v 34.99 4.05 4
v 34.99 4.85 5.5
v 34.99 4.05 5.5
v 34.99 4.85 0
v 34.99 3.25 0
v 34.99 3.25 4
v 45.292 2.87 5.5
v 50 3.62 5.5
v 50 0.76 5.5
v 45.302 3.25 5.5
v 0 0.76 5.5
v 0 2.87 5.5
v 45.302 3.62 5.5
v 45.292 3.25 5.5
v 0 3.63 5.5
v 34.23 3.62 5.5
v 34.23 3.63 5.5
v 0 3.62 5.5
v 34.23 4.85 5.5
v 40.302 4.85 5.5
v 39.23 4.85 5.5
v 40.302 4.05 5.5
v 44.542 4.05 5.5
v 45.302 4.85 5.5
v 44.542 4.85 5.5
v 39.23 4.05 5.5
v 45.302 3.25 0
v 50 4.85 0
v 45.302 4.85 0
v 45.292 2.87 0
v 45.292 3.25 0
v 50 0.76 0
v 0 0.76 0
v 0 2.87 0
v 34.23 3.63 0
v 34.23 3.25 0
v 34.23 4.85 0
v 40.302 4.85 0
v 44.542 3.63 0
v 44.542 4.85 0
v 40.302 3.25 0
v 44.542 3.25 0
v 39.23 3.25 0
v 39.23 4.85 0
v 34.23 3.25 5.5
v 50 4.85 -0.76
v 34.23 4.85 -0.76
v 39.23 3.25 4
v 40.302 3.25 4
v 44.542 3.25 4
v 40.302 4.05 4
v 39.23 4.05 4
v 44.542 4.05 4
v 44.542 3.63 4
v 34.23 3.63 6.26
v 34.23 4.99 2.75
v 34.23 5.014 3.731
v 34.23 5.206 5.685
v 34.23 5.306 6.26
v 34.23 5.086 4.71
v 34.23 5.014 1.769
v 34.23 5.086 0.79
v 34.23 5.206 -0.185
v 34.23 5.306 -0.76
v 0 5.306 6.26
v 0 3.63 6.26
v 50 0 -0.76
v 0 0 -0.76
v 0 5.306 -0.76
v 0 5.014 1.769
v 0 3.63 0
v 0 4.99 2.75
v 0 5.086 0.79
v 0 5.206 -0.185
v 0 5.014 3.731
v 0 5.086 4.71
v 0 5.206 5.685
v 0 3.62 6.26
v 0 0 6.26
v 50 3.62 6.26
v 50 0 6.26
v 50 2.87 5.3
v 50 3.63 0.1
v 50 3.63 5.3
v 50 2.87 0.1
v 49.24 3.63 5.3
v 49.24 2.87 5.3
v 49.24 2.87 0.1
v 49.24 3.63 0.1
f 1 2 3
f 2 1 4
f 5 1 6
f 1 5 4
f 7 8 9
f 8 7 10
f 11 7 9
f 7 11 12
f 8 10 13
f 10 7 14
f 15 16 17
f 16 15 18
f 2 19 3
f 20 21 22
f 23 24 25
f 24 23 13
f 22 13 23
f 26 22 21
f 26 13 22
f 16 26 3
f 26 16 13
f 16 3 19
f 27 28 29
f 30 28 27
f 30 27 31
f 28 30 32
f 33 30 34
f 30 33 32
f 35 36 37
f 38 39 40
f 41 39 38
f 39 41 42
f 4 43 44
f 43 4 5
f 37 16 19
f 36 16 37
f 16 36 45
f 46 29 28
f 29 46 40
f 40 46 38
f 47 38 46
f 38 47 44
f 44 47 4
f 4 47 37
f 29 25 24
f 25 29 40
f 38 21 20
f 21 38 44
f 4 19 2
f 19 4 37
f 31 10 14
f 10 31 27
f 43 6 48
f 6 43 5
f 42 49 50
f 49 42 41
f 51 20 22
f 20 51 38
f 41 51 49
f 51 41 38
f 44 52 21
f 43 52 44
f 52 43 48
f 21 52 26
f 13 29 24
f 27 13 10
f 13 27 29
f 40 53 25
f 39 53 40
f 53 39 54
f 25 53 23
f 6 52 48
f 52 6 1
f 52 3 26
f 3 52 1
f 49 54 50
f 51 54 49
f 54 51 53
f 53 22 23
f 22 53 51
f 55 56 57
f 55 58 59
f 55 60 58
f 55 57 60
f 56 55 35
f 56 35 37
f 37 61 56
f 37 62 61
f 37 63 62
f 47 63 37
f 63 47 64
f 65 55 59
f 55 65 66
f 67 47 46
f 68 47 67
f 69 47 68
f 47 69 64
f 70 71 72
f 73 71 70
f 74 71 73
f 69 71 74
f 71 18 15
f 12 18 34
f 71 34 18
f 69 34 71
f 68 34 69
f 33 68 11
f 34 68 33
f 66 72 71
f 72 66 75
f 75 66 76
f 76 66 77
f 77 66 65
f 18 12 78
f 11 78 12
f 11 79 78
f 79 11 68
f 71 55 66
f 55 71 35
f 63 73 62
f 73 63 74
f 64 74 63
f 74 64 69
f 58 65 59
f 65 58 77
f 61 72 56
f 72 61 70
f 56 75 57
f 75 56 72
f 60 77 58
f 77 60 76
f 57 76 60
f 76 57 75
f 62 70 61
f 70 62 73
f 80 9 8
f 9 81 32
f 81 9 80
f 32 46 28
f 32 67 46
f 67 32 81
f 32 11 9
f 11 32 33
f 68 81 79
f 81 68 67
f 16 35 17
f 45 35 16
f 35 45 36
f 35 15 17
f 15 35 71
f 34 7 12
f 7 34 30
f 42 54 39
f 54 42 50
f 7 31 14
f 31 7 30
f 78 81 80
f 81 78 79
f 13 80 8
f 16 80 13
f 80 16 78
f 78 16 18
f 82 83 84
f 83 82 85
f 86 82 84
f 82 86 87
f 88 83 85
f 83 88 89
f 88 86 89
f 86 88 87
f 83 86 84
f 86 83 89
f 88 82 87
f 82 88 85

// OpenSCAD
hallthick = 1.60;
hallheight = 5.50;
hallwidth = 4.0 + 1;

halloffset = 27.49;

wallthick = .76;
wallthick2 = 1.51;

pitch = 4.25;

hallsep = floor(hallwidth/pitch)*pitch+(pitch/4);

//magnetthick = .75;
magnetthick = 1.51+.6;

length = 50;

// channel outer wall
translate([0,0])
cube([length, wallthick, hallheight]);

//channel inner wall
//translate([0,wallthick+magnetthick])
//cube([length/2+hallwidth*1.2+wallthick, wallthick/2, hallheight]);

//thicken inner wall
translate([0,wallthick+magnetthick])
cube([-wallthick-hallwidth+25/2+halloffset, wallthick, hallheight]);

translate([-wallthick-hallwidth+25/2+halloffset, wallthick+magnetthick])
cube([hallsep+hallwidth,wallthick/2, hallheight]);

translate([-wallthick+hallsep+25/2+halloffset,wallthick+magnetthick])
cube([-wallthick-hallwidth+length-16-halloffset, wallthick, hallheight]);



//z=0 floor
translate([0,0,-wallthick])
cube([length, wallthick*1.5 + hallthick+magnetthick, wallthick]);

//z=max ceiling
translate([0,0,hallheight])
cube([length, wallthick2+magnetthick, wallthick]);

translate([-wallthick-hallwidth+25/2+halloffset,wallthick*1.5+magnetthick]){
    
    // first hall endstop
    translate([0,0])
    cube([wallthick, hallthick, hallheight]);

    //second hall stop
    translate([hallwidth,0])
    cube([hallsep-hallwidth+wallthick, hallthick, hallheight]);


    //third end stop
    translate([hallsep,0])
    translate([hallwidth,0])
    cube([wallthick, hallthick, hallheight]);
    topnotch = 1.5;
    translate([wallthick,0, hallheight-topnotch])
    cube([hallwidth-wallthick, hallthick/2, topnotch]);

    translate([hallsep,0])
    translate([wallthick,0, hallheight-topnotch])
    cube([hallwidth-wallthick, hallthick/2, topnotch]);
}

translate([length-wallthick, magnetthick + wallthick,.1])
cube([wallthick, wallthick, hallheight-.3]);


// GUIDE

guidesize=3;
guide_d = 40;
// channel outer wall

translate([hallsep+25/2+halloffset,wallthick*3+magnetthick])
mirror([0,1,0])
difference(){
translate([0,-guidesize,-wallthick])
cube([-wallthick*2-hallwidth+length-16-halloffset, wallthick+guidesize, hallheight+wallthick*2]);
translate([-.5,-guide_d/2-.60,hallheight/2])
rotate([0,90,0])
cylinder(d=guide_d, h=length+1, $fn=128);
}

translate([0,wallthick*3+magnetthick])
mirror([0,1,0])
difference(){
translate([0,-guidesize,-wallthick])
cube([-wallthick-hallwidth+25/2+halloffset, wallthick+guidesize, hallheight+wallthick*2]);
translate([-.5,-guide_d/2-.60,hallheight/2])
rotate([0,90,0])
cylinder(d=guide_d, h=length+1, $fn=128);
}

// RAMP

//ramp_r = 15;
//
//translate([0,-ramp_r+wallthick*2+magnetthick, -wallthick]){
//    
//difference(){
//
//    intersection(){
//        cylinder(h=hallheight+wallthick*2, r=ramp_r, $fn=64);
//        translate([-ramp_r,0])
//        cube([ramp_r,ramp_r, 100]);
//            rotate([0,0,20])
//        cube([ramp_r,ramp_r, 10]);
//    }
//    translate([0,0,wallthick])
//    cylinder(h=hallheight, r=ramp_r-wallthick, $fn=64);
//    translate([-ramp_r+1,wallthick-magnetthick-wallthick*3, -wallthick*2])
//cube([ramp_r, ramp_r, hallheight+wallthick*6]);
//    
//    }
//}
